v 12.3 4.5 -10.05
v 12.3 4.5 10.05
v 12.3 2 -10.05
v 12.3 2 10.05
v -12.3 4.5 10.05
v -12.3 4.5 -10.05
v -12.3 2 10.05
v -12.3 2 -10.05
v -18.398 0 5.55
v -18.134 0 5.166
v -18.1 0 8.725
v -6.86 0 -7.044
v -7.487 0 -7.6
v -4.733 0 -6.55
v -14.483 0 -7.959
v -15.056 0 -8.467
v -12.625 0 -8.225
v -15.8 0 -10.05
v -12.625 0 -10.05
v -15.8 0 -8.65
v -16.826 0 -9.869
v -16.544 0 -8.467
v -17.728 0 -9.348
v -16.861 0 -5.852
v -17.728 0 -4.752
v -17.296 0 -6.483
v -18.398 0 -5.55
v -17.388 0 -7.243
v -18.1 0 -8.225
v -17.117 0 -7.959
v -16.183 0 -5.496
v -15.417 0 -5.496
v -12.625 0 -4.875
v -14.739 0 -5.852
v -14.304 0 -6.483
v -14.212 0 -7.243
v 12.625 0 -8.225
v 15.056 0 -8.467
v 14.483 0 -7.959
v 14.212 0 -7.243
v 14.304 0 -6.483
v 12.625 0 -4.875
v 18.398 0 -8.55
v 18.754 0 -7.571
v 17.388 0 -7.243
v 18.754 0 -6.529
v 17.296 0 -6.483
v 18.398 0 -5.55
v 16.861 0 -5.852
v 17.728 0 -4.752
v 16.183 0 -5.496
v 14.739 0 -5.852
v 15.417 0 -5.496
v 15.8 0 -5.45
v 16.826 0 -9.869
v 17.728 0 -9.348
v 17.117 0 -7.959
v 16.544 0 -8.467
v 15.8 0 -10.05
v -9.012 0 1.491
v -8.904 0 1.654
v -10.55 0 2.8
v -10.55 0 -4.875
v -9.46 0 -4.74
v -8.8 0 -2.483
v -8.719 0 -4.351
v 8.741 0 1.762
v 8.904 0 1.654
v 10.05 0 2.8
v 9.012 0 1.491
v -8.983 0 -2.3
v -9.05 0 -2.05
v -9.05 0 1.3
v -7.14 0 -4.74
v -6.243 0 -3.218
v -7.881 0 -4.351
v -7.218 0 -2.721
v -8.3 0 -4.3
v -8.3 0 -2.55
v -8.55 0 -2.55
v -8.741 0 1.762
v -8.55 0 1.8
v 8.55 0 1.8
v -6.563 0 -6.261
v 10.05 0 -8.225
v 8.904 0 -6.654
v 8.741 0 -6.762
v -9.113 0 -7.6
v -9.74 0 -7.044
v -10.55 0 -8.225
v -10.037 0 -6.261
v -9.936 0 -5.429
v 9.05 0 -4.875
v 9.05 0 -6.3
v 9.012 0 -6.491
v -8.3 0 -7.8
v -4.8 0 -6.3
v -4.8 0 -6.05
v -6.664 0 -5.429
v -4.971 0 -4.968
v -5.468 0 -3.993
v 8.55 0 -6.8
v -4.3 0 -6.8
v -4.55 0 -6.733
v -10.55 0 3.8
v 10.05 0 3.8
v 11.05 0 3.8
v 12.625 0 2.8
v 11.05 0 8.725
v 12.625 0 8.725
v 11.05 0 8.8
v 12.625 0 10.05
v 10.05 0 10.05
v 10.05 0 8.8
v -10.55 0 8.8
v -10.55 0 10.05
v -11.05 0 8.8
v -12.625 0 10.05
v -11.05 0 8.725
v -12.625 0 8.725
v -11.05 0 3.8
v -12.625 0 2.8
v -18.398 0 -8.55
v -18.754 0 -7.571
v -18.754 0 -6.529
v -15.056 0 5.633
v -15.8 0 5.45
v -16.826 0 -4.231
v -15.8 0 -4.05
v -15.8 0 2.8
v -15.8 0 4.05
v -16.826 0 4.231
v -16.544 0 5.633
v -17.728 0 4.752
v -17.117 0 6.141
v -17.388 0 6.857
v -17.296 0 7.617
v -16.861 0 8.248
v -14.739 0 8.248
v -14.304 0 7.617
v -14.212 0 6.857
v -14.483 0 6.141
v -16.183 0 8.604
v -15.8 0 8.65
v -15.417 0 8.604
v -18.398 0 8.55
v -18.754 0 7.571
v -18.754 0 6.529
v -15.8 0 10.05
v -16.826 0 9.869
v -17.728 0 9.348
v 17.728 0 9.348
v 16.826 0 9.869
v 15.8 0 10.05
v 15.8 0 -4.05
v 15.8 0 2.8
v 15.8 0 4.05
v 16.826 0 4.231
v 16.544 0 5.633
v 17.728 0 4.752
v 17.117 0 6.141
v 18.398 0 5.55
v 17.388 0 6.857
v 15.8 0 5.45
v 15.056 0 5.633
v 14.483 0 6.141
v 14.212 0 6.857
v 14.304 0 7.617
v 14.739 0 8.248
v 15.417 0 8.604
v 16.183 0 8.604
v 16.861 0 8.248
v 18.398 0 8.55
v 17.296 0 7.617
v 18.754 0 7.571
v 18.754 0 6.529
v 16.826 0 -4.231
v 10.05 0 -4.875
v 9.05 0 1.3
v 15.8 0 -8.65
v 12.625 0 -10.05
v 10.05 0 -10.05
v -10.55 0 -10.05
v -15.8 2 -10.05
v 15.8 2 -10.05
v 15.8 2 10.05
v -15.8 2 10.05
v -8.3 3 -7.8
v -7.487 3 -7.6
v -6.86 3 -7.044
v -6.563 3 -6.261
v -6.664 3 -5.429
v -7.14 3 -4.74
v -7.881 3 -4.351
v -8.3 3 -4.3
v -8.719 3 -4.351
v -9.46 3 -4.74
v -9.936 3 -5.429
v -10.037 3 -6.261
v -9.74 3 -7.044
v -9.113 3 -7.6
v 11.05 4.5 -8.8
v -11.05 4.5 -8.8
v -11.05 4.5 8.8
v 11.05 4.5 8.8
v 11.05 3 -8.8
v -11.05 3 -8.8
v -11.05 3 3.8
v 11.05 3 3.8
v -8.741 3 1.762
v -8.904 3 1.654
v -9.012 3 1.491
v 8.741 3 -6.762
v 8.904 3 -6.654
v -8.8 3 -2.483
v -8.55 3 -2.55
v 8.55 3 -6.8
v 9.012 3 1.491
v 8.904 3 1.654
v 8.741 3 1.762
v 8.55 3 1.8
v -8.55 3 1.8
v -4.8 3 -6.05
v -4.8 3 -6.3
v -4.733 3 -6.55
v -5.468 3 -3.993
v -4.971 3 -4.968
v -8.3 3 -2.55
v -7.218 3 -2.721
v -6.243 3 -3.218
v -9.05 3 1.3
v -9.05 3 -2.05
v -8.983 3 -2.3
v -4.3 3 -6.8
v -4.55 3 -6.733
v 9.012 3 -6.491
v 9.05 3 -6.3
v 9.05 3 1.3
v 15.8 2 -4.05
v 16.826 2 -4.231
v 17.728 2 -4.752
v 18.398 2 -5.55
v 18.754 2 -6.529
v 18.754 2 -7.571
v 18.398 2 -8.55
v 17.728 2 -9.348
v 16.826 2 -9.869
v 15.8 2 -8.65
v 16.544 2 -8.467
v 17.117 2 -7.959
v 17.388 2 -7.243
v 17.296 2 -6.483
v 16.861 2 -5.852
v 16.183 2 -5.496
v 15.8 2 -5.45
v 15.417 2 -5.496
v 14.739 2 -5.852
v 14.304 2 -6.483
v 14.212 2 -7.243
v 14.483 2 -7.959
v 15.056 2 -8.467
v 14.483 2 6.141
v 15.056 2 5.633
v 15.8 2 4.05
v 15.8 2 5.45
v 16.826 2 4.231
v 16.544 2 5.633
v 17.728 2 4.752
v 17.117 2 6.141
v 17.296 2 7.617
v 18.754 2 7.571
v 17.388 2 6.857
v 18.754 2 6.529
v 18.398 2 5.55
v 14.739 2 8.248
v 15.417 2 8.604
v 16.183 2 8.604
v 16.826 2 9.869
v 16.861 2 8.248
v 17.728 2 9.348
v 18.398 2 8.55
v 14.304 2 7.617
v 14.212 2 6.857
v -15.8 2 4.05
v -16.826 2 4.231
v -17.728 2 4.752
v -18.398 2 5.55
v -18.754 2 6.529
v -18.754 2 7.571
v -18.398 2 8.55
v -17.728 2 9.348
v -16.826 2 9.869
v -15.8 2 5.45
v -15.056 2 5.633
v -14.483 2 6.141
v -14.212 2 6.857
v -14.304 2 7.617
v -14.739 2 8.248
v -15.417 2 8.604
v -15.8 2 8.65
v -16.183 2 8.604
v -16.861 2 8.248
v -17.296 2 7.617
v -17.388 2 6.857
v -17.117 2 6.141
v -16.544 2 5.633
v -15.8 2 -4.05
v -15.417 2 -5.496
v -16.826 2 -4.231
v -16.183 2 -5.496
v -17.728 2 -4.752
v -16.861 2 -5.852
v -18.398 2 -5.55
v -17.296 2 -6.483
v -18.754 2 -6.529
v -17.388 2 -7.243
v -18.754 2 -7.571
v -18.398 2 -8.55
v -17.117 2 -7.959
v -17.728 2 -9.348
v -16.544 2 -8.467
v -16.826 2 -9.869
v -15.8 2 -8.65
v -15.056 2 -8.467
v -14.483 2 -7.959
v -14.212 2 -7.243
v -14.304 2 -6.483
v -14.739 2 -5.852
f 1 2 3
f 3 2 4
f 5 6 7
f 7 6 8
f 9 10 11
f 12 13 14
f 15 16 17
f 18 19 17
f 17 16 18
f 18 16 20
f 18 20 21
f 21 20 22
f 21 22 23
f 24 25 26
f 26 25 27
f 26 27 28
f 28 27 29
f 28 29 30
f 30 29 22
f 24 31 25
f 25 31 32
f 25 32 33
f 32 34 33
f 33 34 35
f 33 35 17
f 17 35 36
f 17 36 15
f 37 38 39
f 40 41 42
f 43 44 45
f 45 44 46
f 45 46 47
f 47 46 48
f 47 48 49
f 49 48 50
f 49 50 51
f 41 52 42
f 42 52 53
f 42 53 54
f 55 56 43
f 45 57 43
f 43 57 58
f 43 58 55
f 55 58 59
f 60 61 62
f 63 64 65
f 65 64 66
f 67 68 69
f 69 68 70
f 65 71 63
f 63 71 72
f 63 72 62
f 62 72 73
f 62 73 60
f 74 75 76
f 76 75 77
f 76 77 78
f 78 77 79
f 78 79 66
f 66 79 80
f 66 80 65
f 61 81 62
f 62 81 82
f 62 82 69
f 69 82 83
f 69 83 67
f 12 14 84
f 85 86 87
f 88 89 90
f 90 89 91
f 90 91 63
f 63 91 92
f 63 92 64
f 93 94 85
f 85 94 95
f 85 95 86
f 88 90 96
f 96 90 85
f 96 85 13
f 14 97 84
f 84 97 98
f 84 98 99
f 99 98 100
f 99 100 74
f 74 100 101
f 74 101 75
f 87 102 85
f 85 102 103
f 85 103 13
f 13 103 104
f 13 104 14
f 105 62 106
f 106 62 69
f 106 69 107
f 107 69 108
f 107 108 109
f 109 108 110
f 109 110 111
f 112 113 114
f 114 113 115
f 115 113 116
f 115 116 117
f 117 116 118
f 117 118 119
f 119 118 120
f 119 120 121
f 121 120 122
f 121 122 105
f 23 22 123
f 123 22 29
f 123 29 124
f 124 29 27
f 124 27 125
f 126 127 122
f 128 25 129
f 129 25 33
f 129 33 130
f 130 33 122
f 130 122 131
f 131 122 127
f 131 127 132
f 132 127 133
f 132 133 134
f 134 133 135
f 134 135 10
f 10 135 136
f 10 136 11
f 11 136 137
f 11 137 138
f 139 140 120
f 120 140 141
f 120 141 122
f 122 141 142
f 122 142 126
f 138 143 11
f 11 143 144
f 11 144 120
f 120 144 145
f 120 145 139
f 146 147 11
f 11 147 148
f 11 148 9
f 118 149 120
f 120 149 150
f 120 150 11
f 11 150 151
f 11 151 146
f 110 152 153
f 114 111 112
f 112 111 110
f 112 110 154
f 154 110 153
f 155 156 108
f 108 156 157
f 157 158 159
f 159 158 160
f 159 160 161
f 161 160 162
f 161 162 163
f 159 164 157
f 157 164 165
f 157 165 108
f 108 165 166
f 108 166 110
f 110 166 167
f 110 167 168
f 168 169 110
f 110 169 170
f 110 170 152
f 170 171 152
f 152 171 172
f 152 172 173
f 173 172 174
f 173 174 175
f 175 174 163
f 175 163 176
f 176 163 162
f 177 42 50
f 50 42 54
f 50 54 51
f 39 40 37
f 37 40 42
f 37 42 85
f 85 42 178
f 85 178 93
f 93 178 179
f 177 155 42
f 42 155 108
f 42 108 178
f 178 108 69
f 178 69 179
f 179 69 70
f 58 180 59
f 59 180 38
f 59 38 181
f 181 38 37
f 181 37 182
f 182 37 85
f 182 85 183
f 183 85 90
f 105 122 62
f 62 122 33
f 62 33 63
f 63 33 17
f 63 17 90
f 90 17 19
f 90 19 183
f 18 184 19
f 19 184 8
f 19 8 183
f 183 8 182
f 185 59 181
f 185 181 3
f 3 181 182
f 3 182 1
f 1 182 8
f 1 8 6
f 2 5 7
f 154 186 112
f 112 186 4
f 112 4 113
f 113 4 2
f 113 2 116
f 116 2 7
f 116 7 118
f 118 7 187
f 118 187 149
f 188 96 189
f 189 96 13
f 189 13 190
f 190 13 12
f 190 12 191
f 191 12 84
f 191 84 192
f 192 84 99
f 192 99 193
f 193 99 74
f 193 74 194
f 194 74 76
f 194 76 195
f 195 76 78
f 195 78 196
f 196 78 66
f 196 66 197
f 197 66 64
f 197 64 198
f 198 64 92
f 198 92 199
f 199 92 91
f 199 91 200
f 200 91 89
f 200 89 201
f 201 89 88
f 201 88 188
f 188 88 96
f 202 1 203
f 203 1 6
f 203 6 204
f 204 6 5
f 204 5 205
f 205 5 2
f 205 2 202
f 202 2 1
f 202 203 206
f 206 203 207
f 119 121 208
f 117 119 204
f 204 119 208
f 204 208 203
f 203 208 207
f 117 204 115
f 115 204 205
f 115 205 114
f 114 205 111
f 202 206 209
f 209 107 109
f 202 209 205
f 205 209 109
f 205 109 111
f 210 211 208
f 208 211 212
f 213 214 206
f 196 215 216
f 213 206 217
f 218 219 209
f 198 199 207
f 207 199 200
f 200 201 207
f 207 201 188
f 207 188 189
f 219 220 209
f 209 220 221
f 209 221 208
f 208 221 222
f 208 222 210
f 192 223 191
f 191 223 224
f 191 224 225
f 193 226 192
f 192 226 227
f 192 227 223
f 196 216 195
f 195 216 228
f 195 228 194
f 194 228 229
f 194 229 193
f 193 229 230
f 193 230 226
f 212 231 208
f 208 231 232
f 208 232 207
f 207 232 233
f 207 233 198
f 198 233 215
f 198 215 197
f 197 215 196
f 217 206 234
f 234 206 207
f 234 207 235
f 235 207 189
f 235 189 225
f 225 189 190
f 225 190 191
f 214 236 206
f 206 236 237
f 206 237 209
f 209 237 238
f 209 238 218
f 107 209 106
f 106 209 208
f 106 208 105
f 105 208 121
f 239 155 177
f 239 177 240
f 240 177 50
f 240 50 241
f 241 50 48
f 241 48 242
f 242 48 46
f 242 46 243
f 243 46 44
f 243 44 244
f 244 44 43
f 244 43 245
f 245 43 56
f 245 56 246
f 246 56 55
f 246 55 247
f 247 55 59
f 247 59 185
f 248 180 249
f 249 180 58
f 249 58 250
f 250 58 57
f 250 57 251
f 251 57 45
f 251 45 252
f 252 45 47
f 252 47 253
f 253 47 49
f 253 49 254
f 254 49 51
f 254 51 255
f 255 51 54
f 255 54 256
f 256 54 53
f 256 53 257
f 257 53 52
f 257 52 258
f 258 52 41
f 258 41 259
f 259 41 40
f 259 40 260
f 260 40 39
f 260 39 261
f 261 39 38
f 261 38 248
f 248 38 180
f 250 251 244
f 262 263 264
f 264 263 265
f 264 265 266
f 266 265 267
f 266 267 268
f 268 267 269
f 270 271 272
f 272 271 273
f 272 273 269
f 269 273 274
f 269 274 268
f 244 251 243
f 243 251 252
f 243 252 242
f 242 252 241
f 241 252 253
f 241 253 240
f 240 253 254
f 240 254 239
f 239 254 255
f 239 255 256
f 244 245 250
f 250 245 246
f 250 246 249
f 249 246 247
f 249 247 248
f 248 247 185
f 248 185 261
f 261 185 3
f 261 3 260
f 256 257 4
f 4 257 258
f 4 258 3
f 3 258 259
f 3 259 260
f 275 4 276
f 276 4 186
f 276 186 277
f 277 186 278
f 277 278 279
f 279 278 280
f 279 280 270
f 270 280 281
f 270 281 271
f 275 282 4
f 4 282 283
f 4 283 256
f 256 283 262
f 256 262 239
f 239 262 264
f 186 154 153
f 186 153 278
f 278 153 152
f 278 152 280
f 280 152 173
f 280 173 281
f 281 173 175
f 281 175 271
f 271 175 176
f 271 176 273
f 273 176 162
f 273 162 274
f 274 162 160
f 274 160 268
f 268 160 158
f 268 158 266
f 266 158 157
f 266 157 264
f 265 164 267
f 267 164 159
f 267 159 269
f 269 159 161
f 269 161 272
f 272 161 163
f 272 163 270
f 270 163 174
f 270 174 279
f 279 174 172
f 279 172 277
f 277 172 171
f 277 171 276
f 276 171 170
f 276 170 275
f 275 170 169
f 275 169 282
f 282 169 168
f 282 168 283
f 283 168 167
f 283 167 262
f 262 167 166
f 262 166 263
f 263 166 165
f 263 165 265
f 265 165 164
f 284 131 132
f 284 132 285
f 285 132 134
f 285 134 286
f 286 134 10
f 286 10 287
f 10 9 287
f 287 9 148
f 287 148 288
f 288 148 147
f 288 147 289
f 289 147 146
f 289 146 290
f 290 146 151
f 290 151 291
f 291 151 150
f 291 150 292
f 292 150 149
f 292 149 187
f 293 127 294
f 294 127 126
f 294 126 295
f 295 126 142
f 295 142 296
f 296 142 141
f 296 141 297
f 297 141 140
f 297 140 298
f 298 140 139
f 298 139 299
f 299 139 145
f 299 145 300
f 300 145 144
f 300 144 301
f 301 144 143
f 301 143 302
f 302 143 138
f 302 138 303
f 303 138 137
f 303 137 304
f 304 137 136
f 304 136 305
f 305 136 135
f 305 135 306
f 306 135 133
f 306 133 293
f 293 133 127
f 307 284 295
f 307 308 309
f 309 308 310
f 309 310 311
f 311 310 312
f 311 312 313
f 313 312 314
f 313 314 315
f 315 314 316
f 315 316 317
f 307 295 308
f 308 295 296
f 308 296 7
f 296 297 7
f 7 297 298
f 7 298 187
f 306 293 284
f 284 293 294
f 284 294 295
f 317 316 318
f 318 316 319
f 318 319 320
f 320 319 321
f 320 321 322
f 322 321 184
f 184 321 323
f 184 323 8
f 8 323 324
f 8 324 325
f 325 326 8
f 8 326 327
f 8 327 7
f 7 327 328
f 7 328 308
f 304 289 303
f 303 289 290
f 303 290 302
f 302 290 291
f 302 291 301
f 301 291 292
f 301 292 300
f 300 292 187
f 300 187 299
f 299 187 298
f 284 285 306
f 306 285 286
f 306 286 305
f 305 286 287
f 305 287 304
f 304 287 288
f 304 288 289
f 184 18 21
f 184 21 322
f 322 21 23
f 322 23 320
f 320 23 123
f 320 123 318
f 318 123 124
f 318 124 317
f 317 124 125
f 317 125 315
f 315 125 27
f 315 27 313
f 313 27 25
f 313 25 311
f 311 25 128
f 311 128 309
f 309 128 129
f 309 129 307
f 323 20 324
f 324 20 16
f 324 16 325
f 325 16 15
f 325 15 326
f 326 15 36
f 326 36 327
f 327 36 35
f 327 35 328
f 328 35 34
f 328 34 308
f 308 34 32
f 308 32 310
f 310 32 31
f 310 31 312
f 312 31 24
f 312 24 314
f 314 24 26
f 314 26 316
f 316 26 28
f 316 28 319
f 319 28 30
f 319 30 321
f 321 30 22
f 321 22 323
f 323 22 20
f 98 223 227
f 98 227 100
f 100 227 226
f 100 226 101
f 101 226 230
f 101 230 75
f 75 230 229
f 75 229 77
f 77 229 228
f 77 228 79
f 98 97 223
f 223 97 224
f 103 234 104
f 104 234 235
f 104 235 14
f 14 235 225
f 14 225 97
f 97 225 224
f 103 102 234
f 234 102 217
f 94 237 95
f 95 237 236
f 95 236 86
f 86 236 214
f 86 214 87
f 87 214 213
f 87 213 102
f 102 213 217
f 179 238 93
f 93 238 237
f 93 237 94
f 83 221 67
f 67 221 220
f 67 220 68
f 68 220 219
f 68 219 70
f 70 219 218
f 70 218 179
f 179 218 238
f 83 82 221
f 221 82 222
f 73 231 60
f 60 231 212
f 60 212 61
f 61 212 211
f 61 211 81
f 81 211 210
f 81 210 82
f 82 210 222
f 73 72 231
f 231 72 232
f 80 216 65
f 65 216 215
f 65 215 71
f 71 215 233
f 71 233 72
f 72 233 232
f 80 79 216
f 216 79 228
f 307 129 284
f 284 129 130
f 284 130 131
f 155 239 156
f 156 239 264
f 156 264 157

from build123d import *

# Parameters (mm, degrees)
SKETCH1_W           = 24.6
SKETCH1_H           = 20.1
SKETCH1_R           = 1.75
BOSS_EXTRUDE1_DEPTH = 1.5
SKETCH2_W           = 24.6
SKETCH2_H           = 20.1
SKETCH2_W_2         = 22.1
SKETCH2_H_2         = 17.6
BOSS_EXTRUDE2_DEPTH = 3
SKETCH3_W           = 22.1
SKETCH3_H           = 12.6
SKETCH3_R           = 1.75
BOSS_EXTRUDE3_DEPTH = 1.5
SKETCH4_R           = 1.6
BOSS_EXTRUDE4_DEPTH = 2
CUT_EXTRUDE1_DEPTH  = 22.527714695
SKETCH6_W           = 22.1
SKETCH6_H           = 5
CUT_EXTRUDE2_DEPTH  = 22.527714695
SKETCH8_W           = 3.5
SKETCH8_H           = 8.1
BOSS_EXTRUDE5_DEPTH = 2


with BuildPart() as part:
    # Sketch1 → Boss-Extrude1 (new body)
    with BuildSketch(Plane(origin=(0, 0, 0), x_dir=(1, 0, 0), z_dir=(0, 1, 0))):
        Rectangle(SKETCH1_W, SKETCH1_H)
        with Locations(Location((-8.3, 6.05, 0), (0, 0, 270))):
            Circle(SKETCH1_R, mode=Mode.SUBTRACT)
    extrude(amount=BOSS_EXTRUDE1_DEPTH)

    # Sketch2 → Boss-Extrude2 (add)
    with BuildSketch(Plane(origin=(0, 1.5, 0), x_dir=(1, 0, 0), z_dir=(0, 1, 0))):
        Rectangle(SKETCH2_W, SKETCH2_H)
        Rectangle(SKETCH2_W_2, SKETCH2_H_2, mode=Mode.SUBTRACT)
    extrude(amount=BOSS_EXTRUDE2_DEPTH)

    # Sketch3 → Boss-Extrude3 (add)
    with BuildSketch(Plane(origin=(0, 1.5, 0), x_dir=(1, 0, 0), z_dir=(0, 1, 0))):
        with Locations((0, 2.5)):
            Rectangle(SKETCH3_W, SKETCH3_H)
        with Locations(Location((-8.3, 6.05, 0), (0, 0, 270))):
            Circle(SKETCH3_R, mode=Mode.SUBTRACT)
    extrude(amount=BOSS_EXTRUDE3_DEPTH)

    # Sketch4 → Boss-Extrude4 (add)
    # profile 1 of 4: a face of its own
    with BuildSketch(Plane(origin=(0, 0, 0), x_dir=(1, 0, 0), z_dir=(0, 1, 0))):
        with BuildLine():
            Line((15.8, 10.05), (12.3, 10.05))
            Line((12.3, 10.05), (12.3, 4.05))
            Line((12.3, 4.05), (15.8, 4.05))
            ThreePointArc((15.8, 4.05), (18.8, 7.05), (15.8, 10.05))
        make_face()
        with Locations(Location((15.8, 7.05, 0), (0, 0, 270))):
            Circle(SKETCH4_R, mode=Mode.SUBTRACT)
    # profile 2 of 4: a face of its own
    with BuildSketch(Plane(origin=(0, 0, 0), x_dir=(1, 0, 0), z_dir=(0, 1, 0))):
        with BuildLine():
            Line((-15.8, 4.05), (-12.3, 4.05))
            Line((-12.3, 4.05), (-12.3, 10.05))
            Line((-12.3, 10.05), (-15.8, 10.05))
            ThreePointArc((-15.8, 10.05), (-18.8, 7.05), (-15.8, 4.05))
        make_face()
        with Locations(Location((-15.8, 7.05, 0), (0, 0, 90))):
            Circle(SKETCH4_R, mode=Mode.SUBTRACT)
    # profile 3 of 4: a face of its own
    with BuildSketch(Plane(origin=(0, 0, 0), x_dir=(1, 0, 0), z_dir=(0, 1, 0))):
        with BuildLine():
            Line((15.8, -4.05), (12.3, -4.05))
            Line((12.3, -4.05), (12.3, -10.05))
            Line((12.3, -10.05), (15.8, -10.05))
            ThreePointArc((15.8, -10.05), (18.8, -7.05), (15.8, -4.05))
        make_face()
        with Locations(Location((15.8, -7.05, 0), (0, 0, 90))):
            Circle(SKETCH4_R, mode=Mode.SUBTRACT)
    # profile 4 of 4: a face of its own
    with BuildSketch(Plane(origin=(0, 0, 0), x_dir=(1, 0, 0), z_dir=(0, 1, 0))):
        with BuildLine():
            Line((-15.8, -10.05), (-12.3, -10.05))
            Line((-12.3, -10.05), (-12.3, -4.05))
            Line((-12.3, -4.05), (-15.8, -4.05))
            ThreePointArc((-15.8, -4.05), (-18.8, -7.05), (-15.8, -10.05))
        make_face()
        with Locations(Location((-15.8, -7.05, 0), (0, 0, 270))):
            Circle(SKETCH4_R, mode=Mode.SUBTRACT)
    extrude(amount=BOSS_EXTRUDE4_DEPTH)

    # Sketch5 → Cut-Extrude1 (cut, through all)
    with BuildSketch(Plane(origin=(0, 3, 0), x_dir=(1, 0, 0), z_dir=(0, 1, 0))):
        with BuildLine():
            Line((-9.05, -1.3), (-9.05, 2.05))
            ThreePointArc((-9.05, 2.05), (-8.903553391, 2.403553391), (-8.55, 2.55))
            Line((-8.55, 2.55), (-8.3, 2.55))
            ThreePointArc((-8.3, 2.55), (-5.825126266, 3.575126266), (-4.8, 6.05))
            Line((-4.8, 6.05), (-4.8, 6.3))
            ThreePointArc((-4.8, 6.3), (-4.653553391, 6.653553391), (-4.3, 6.8))
            Line((-4.3, 6.8), (8.55, 6.8))
            ThreePointArc((8.55, 6.8), (8.903553391, 6.653553391), (9.05, 6.3))
            Line((9.05, 6.3), (9.05, -1.3))
            ThreePointArc((9.05, -1.3), (8.903553391, -1.653553391), (8.55, -1.8))
            Line((8.55, -1.8), (-8.55, -1.8))
            ThreePointArc((-8.55, -1.8), (-8.903553391, -1.653553391), (-9.05, -1.3))
        make_face()
    extrude(amount=-CUT_EXTRUDE1_DEPTH, mode=Mode.SUBTRACT)

    # Sketch6 → Cut-Extrude2 (cut, through all)
    with BuildSketch(Plane(origin=(0, 1.5, 0), x_dir=(1, 0, 0), z_dir=(0, 1, 0))):
        with Locations((0, -6.3)):
            Rectangle(SKETCH6_W, SKETCH6_H)
    extrude(amount=-CUT_EXTRUDE2_DEPTH, mode=Mode.SUBTRACT)

    # Sketch8 → Boss-Extrude5 (add, through all)
    with BuildSketch(Plane(origin=(0, 2, 0), x_dir=(1, 0, 0), z_dir=(0, 1, 0))):
        with Locations((-14.05, 0)):
            Rectangle(SKETCH8_W, SKETCH8_H)
        with Locations((14.05, 0)):
            Rectangle(SKETCH8_W, SKETCH8_H)
    extrude(amount=-BOSS_EXTRUDE5_DEPTH)


solid = part.part
